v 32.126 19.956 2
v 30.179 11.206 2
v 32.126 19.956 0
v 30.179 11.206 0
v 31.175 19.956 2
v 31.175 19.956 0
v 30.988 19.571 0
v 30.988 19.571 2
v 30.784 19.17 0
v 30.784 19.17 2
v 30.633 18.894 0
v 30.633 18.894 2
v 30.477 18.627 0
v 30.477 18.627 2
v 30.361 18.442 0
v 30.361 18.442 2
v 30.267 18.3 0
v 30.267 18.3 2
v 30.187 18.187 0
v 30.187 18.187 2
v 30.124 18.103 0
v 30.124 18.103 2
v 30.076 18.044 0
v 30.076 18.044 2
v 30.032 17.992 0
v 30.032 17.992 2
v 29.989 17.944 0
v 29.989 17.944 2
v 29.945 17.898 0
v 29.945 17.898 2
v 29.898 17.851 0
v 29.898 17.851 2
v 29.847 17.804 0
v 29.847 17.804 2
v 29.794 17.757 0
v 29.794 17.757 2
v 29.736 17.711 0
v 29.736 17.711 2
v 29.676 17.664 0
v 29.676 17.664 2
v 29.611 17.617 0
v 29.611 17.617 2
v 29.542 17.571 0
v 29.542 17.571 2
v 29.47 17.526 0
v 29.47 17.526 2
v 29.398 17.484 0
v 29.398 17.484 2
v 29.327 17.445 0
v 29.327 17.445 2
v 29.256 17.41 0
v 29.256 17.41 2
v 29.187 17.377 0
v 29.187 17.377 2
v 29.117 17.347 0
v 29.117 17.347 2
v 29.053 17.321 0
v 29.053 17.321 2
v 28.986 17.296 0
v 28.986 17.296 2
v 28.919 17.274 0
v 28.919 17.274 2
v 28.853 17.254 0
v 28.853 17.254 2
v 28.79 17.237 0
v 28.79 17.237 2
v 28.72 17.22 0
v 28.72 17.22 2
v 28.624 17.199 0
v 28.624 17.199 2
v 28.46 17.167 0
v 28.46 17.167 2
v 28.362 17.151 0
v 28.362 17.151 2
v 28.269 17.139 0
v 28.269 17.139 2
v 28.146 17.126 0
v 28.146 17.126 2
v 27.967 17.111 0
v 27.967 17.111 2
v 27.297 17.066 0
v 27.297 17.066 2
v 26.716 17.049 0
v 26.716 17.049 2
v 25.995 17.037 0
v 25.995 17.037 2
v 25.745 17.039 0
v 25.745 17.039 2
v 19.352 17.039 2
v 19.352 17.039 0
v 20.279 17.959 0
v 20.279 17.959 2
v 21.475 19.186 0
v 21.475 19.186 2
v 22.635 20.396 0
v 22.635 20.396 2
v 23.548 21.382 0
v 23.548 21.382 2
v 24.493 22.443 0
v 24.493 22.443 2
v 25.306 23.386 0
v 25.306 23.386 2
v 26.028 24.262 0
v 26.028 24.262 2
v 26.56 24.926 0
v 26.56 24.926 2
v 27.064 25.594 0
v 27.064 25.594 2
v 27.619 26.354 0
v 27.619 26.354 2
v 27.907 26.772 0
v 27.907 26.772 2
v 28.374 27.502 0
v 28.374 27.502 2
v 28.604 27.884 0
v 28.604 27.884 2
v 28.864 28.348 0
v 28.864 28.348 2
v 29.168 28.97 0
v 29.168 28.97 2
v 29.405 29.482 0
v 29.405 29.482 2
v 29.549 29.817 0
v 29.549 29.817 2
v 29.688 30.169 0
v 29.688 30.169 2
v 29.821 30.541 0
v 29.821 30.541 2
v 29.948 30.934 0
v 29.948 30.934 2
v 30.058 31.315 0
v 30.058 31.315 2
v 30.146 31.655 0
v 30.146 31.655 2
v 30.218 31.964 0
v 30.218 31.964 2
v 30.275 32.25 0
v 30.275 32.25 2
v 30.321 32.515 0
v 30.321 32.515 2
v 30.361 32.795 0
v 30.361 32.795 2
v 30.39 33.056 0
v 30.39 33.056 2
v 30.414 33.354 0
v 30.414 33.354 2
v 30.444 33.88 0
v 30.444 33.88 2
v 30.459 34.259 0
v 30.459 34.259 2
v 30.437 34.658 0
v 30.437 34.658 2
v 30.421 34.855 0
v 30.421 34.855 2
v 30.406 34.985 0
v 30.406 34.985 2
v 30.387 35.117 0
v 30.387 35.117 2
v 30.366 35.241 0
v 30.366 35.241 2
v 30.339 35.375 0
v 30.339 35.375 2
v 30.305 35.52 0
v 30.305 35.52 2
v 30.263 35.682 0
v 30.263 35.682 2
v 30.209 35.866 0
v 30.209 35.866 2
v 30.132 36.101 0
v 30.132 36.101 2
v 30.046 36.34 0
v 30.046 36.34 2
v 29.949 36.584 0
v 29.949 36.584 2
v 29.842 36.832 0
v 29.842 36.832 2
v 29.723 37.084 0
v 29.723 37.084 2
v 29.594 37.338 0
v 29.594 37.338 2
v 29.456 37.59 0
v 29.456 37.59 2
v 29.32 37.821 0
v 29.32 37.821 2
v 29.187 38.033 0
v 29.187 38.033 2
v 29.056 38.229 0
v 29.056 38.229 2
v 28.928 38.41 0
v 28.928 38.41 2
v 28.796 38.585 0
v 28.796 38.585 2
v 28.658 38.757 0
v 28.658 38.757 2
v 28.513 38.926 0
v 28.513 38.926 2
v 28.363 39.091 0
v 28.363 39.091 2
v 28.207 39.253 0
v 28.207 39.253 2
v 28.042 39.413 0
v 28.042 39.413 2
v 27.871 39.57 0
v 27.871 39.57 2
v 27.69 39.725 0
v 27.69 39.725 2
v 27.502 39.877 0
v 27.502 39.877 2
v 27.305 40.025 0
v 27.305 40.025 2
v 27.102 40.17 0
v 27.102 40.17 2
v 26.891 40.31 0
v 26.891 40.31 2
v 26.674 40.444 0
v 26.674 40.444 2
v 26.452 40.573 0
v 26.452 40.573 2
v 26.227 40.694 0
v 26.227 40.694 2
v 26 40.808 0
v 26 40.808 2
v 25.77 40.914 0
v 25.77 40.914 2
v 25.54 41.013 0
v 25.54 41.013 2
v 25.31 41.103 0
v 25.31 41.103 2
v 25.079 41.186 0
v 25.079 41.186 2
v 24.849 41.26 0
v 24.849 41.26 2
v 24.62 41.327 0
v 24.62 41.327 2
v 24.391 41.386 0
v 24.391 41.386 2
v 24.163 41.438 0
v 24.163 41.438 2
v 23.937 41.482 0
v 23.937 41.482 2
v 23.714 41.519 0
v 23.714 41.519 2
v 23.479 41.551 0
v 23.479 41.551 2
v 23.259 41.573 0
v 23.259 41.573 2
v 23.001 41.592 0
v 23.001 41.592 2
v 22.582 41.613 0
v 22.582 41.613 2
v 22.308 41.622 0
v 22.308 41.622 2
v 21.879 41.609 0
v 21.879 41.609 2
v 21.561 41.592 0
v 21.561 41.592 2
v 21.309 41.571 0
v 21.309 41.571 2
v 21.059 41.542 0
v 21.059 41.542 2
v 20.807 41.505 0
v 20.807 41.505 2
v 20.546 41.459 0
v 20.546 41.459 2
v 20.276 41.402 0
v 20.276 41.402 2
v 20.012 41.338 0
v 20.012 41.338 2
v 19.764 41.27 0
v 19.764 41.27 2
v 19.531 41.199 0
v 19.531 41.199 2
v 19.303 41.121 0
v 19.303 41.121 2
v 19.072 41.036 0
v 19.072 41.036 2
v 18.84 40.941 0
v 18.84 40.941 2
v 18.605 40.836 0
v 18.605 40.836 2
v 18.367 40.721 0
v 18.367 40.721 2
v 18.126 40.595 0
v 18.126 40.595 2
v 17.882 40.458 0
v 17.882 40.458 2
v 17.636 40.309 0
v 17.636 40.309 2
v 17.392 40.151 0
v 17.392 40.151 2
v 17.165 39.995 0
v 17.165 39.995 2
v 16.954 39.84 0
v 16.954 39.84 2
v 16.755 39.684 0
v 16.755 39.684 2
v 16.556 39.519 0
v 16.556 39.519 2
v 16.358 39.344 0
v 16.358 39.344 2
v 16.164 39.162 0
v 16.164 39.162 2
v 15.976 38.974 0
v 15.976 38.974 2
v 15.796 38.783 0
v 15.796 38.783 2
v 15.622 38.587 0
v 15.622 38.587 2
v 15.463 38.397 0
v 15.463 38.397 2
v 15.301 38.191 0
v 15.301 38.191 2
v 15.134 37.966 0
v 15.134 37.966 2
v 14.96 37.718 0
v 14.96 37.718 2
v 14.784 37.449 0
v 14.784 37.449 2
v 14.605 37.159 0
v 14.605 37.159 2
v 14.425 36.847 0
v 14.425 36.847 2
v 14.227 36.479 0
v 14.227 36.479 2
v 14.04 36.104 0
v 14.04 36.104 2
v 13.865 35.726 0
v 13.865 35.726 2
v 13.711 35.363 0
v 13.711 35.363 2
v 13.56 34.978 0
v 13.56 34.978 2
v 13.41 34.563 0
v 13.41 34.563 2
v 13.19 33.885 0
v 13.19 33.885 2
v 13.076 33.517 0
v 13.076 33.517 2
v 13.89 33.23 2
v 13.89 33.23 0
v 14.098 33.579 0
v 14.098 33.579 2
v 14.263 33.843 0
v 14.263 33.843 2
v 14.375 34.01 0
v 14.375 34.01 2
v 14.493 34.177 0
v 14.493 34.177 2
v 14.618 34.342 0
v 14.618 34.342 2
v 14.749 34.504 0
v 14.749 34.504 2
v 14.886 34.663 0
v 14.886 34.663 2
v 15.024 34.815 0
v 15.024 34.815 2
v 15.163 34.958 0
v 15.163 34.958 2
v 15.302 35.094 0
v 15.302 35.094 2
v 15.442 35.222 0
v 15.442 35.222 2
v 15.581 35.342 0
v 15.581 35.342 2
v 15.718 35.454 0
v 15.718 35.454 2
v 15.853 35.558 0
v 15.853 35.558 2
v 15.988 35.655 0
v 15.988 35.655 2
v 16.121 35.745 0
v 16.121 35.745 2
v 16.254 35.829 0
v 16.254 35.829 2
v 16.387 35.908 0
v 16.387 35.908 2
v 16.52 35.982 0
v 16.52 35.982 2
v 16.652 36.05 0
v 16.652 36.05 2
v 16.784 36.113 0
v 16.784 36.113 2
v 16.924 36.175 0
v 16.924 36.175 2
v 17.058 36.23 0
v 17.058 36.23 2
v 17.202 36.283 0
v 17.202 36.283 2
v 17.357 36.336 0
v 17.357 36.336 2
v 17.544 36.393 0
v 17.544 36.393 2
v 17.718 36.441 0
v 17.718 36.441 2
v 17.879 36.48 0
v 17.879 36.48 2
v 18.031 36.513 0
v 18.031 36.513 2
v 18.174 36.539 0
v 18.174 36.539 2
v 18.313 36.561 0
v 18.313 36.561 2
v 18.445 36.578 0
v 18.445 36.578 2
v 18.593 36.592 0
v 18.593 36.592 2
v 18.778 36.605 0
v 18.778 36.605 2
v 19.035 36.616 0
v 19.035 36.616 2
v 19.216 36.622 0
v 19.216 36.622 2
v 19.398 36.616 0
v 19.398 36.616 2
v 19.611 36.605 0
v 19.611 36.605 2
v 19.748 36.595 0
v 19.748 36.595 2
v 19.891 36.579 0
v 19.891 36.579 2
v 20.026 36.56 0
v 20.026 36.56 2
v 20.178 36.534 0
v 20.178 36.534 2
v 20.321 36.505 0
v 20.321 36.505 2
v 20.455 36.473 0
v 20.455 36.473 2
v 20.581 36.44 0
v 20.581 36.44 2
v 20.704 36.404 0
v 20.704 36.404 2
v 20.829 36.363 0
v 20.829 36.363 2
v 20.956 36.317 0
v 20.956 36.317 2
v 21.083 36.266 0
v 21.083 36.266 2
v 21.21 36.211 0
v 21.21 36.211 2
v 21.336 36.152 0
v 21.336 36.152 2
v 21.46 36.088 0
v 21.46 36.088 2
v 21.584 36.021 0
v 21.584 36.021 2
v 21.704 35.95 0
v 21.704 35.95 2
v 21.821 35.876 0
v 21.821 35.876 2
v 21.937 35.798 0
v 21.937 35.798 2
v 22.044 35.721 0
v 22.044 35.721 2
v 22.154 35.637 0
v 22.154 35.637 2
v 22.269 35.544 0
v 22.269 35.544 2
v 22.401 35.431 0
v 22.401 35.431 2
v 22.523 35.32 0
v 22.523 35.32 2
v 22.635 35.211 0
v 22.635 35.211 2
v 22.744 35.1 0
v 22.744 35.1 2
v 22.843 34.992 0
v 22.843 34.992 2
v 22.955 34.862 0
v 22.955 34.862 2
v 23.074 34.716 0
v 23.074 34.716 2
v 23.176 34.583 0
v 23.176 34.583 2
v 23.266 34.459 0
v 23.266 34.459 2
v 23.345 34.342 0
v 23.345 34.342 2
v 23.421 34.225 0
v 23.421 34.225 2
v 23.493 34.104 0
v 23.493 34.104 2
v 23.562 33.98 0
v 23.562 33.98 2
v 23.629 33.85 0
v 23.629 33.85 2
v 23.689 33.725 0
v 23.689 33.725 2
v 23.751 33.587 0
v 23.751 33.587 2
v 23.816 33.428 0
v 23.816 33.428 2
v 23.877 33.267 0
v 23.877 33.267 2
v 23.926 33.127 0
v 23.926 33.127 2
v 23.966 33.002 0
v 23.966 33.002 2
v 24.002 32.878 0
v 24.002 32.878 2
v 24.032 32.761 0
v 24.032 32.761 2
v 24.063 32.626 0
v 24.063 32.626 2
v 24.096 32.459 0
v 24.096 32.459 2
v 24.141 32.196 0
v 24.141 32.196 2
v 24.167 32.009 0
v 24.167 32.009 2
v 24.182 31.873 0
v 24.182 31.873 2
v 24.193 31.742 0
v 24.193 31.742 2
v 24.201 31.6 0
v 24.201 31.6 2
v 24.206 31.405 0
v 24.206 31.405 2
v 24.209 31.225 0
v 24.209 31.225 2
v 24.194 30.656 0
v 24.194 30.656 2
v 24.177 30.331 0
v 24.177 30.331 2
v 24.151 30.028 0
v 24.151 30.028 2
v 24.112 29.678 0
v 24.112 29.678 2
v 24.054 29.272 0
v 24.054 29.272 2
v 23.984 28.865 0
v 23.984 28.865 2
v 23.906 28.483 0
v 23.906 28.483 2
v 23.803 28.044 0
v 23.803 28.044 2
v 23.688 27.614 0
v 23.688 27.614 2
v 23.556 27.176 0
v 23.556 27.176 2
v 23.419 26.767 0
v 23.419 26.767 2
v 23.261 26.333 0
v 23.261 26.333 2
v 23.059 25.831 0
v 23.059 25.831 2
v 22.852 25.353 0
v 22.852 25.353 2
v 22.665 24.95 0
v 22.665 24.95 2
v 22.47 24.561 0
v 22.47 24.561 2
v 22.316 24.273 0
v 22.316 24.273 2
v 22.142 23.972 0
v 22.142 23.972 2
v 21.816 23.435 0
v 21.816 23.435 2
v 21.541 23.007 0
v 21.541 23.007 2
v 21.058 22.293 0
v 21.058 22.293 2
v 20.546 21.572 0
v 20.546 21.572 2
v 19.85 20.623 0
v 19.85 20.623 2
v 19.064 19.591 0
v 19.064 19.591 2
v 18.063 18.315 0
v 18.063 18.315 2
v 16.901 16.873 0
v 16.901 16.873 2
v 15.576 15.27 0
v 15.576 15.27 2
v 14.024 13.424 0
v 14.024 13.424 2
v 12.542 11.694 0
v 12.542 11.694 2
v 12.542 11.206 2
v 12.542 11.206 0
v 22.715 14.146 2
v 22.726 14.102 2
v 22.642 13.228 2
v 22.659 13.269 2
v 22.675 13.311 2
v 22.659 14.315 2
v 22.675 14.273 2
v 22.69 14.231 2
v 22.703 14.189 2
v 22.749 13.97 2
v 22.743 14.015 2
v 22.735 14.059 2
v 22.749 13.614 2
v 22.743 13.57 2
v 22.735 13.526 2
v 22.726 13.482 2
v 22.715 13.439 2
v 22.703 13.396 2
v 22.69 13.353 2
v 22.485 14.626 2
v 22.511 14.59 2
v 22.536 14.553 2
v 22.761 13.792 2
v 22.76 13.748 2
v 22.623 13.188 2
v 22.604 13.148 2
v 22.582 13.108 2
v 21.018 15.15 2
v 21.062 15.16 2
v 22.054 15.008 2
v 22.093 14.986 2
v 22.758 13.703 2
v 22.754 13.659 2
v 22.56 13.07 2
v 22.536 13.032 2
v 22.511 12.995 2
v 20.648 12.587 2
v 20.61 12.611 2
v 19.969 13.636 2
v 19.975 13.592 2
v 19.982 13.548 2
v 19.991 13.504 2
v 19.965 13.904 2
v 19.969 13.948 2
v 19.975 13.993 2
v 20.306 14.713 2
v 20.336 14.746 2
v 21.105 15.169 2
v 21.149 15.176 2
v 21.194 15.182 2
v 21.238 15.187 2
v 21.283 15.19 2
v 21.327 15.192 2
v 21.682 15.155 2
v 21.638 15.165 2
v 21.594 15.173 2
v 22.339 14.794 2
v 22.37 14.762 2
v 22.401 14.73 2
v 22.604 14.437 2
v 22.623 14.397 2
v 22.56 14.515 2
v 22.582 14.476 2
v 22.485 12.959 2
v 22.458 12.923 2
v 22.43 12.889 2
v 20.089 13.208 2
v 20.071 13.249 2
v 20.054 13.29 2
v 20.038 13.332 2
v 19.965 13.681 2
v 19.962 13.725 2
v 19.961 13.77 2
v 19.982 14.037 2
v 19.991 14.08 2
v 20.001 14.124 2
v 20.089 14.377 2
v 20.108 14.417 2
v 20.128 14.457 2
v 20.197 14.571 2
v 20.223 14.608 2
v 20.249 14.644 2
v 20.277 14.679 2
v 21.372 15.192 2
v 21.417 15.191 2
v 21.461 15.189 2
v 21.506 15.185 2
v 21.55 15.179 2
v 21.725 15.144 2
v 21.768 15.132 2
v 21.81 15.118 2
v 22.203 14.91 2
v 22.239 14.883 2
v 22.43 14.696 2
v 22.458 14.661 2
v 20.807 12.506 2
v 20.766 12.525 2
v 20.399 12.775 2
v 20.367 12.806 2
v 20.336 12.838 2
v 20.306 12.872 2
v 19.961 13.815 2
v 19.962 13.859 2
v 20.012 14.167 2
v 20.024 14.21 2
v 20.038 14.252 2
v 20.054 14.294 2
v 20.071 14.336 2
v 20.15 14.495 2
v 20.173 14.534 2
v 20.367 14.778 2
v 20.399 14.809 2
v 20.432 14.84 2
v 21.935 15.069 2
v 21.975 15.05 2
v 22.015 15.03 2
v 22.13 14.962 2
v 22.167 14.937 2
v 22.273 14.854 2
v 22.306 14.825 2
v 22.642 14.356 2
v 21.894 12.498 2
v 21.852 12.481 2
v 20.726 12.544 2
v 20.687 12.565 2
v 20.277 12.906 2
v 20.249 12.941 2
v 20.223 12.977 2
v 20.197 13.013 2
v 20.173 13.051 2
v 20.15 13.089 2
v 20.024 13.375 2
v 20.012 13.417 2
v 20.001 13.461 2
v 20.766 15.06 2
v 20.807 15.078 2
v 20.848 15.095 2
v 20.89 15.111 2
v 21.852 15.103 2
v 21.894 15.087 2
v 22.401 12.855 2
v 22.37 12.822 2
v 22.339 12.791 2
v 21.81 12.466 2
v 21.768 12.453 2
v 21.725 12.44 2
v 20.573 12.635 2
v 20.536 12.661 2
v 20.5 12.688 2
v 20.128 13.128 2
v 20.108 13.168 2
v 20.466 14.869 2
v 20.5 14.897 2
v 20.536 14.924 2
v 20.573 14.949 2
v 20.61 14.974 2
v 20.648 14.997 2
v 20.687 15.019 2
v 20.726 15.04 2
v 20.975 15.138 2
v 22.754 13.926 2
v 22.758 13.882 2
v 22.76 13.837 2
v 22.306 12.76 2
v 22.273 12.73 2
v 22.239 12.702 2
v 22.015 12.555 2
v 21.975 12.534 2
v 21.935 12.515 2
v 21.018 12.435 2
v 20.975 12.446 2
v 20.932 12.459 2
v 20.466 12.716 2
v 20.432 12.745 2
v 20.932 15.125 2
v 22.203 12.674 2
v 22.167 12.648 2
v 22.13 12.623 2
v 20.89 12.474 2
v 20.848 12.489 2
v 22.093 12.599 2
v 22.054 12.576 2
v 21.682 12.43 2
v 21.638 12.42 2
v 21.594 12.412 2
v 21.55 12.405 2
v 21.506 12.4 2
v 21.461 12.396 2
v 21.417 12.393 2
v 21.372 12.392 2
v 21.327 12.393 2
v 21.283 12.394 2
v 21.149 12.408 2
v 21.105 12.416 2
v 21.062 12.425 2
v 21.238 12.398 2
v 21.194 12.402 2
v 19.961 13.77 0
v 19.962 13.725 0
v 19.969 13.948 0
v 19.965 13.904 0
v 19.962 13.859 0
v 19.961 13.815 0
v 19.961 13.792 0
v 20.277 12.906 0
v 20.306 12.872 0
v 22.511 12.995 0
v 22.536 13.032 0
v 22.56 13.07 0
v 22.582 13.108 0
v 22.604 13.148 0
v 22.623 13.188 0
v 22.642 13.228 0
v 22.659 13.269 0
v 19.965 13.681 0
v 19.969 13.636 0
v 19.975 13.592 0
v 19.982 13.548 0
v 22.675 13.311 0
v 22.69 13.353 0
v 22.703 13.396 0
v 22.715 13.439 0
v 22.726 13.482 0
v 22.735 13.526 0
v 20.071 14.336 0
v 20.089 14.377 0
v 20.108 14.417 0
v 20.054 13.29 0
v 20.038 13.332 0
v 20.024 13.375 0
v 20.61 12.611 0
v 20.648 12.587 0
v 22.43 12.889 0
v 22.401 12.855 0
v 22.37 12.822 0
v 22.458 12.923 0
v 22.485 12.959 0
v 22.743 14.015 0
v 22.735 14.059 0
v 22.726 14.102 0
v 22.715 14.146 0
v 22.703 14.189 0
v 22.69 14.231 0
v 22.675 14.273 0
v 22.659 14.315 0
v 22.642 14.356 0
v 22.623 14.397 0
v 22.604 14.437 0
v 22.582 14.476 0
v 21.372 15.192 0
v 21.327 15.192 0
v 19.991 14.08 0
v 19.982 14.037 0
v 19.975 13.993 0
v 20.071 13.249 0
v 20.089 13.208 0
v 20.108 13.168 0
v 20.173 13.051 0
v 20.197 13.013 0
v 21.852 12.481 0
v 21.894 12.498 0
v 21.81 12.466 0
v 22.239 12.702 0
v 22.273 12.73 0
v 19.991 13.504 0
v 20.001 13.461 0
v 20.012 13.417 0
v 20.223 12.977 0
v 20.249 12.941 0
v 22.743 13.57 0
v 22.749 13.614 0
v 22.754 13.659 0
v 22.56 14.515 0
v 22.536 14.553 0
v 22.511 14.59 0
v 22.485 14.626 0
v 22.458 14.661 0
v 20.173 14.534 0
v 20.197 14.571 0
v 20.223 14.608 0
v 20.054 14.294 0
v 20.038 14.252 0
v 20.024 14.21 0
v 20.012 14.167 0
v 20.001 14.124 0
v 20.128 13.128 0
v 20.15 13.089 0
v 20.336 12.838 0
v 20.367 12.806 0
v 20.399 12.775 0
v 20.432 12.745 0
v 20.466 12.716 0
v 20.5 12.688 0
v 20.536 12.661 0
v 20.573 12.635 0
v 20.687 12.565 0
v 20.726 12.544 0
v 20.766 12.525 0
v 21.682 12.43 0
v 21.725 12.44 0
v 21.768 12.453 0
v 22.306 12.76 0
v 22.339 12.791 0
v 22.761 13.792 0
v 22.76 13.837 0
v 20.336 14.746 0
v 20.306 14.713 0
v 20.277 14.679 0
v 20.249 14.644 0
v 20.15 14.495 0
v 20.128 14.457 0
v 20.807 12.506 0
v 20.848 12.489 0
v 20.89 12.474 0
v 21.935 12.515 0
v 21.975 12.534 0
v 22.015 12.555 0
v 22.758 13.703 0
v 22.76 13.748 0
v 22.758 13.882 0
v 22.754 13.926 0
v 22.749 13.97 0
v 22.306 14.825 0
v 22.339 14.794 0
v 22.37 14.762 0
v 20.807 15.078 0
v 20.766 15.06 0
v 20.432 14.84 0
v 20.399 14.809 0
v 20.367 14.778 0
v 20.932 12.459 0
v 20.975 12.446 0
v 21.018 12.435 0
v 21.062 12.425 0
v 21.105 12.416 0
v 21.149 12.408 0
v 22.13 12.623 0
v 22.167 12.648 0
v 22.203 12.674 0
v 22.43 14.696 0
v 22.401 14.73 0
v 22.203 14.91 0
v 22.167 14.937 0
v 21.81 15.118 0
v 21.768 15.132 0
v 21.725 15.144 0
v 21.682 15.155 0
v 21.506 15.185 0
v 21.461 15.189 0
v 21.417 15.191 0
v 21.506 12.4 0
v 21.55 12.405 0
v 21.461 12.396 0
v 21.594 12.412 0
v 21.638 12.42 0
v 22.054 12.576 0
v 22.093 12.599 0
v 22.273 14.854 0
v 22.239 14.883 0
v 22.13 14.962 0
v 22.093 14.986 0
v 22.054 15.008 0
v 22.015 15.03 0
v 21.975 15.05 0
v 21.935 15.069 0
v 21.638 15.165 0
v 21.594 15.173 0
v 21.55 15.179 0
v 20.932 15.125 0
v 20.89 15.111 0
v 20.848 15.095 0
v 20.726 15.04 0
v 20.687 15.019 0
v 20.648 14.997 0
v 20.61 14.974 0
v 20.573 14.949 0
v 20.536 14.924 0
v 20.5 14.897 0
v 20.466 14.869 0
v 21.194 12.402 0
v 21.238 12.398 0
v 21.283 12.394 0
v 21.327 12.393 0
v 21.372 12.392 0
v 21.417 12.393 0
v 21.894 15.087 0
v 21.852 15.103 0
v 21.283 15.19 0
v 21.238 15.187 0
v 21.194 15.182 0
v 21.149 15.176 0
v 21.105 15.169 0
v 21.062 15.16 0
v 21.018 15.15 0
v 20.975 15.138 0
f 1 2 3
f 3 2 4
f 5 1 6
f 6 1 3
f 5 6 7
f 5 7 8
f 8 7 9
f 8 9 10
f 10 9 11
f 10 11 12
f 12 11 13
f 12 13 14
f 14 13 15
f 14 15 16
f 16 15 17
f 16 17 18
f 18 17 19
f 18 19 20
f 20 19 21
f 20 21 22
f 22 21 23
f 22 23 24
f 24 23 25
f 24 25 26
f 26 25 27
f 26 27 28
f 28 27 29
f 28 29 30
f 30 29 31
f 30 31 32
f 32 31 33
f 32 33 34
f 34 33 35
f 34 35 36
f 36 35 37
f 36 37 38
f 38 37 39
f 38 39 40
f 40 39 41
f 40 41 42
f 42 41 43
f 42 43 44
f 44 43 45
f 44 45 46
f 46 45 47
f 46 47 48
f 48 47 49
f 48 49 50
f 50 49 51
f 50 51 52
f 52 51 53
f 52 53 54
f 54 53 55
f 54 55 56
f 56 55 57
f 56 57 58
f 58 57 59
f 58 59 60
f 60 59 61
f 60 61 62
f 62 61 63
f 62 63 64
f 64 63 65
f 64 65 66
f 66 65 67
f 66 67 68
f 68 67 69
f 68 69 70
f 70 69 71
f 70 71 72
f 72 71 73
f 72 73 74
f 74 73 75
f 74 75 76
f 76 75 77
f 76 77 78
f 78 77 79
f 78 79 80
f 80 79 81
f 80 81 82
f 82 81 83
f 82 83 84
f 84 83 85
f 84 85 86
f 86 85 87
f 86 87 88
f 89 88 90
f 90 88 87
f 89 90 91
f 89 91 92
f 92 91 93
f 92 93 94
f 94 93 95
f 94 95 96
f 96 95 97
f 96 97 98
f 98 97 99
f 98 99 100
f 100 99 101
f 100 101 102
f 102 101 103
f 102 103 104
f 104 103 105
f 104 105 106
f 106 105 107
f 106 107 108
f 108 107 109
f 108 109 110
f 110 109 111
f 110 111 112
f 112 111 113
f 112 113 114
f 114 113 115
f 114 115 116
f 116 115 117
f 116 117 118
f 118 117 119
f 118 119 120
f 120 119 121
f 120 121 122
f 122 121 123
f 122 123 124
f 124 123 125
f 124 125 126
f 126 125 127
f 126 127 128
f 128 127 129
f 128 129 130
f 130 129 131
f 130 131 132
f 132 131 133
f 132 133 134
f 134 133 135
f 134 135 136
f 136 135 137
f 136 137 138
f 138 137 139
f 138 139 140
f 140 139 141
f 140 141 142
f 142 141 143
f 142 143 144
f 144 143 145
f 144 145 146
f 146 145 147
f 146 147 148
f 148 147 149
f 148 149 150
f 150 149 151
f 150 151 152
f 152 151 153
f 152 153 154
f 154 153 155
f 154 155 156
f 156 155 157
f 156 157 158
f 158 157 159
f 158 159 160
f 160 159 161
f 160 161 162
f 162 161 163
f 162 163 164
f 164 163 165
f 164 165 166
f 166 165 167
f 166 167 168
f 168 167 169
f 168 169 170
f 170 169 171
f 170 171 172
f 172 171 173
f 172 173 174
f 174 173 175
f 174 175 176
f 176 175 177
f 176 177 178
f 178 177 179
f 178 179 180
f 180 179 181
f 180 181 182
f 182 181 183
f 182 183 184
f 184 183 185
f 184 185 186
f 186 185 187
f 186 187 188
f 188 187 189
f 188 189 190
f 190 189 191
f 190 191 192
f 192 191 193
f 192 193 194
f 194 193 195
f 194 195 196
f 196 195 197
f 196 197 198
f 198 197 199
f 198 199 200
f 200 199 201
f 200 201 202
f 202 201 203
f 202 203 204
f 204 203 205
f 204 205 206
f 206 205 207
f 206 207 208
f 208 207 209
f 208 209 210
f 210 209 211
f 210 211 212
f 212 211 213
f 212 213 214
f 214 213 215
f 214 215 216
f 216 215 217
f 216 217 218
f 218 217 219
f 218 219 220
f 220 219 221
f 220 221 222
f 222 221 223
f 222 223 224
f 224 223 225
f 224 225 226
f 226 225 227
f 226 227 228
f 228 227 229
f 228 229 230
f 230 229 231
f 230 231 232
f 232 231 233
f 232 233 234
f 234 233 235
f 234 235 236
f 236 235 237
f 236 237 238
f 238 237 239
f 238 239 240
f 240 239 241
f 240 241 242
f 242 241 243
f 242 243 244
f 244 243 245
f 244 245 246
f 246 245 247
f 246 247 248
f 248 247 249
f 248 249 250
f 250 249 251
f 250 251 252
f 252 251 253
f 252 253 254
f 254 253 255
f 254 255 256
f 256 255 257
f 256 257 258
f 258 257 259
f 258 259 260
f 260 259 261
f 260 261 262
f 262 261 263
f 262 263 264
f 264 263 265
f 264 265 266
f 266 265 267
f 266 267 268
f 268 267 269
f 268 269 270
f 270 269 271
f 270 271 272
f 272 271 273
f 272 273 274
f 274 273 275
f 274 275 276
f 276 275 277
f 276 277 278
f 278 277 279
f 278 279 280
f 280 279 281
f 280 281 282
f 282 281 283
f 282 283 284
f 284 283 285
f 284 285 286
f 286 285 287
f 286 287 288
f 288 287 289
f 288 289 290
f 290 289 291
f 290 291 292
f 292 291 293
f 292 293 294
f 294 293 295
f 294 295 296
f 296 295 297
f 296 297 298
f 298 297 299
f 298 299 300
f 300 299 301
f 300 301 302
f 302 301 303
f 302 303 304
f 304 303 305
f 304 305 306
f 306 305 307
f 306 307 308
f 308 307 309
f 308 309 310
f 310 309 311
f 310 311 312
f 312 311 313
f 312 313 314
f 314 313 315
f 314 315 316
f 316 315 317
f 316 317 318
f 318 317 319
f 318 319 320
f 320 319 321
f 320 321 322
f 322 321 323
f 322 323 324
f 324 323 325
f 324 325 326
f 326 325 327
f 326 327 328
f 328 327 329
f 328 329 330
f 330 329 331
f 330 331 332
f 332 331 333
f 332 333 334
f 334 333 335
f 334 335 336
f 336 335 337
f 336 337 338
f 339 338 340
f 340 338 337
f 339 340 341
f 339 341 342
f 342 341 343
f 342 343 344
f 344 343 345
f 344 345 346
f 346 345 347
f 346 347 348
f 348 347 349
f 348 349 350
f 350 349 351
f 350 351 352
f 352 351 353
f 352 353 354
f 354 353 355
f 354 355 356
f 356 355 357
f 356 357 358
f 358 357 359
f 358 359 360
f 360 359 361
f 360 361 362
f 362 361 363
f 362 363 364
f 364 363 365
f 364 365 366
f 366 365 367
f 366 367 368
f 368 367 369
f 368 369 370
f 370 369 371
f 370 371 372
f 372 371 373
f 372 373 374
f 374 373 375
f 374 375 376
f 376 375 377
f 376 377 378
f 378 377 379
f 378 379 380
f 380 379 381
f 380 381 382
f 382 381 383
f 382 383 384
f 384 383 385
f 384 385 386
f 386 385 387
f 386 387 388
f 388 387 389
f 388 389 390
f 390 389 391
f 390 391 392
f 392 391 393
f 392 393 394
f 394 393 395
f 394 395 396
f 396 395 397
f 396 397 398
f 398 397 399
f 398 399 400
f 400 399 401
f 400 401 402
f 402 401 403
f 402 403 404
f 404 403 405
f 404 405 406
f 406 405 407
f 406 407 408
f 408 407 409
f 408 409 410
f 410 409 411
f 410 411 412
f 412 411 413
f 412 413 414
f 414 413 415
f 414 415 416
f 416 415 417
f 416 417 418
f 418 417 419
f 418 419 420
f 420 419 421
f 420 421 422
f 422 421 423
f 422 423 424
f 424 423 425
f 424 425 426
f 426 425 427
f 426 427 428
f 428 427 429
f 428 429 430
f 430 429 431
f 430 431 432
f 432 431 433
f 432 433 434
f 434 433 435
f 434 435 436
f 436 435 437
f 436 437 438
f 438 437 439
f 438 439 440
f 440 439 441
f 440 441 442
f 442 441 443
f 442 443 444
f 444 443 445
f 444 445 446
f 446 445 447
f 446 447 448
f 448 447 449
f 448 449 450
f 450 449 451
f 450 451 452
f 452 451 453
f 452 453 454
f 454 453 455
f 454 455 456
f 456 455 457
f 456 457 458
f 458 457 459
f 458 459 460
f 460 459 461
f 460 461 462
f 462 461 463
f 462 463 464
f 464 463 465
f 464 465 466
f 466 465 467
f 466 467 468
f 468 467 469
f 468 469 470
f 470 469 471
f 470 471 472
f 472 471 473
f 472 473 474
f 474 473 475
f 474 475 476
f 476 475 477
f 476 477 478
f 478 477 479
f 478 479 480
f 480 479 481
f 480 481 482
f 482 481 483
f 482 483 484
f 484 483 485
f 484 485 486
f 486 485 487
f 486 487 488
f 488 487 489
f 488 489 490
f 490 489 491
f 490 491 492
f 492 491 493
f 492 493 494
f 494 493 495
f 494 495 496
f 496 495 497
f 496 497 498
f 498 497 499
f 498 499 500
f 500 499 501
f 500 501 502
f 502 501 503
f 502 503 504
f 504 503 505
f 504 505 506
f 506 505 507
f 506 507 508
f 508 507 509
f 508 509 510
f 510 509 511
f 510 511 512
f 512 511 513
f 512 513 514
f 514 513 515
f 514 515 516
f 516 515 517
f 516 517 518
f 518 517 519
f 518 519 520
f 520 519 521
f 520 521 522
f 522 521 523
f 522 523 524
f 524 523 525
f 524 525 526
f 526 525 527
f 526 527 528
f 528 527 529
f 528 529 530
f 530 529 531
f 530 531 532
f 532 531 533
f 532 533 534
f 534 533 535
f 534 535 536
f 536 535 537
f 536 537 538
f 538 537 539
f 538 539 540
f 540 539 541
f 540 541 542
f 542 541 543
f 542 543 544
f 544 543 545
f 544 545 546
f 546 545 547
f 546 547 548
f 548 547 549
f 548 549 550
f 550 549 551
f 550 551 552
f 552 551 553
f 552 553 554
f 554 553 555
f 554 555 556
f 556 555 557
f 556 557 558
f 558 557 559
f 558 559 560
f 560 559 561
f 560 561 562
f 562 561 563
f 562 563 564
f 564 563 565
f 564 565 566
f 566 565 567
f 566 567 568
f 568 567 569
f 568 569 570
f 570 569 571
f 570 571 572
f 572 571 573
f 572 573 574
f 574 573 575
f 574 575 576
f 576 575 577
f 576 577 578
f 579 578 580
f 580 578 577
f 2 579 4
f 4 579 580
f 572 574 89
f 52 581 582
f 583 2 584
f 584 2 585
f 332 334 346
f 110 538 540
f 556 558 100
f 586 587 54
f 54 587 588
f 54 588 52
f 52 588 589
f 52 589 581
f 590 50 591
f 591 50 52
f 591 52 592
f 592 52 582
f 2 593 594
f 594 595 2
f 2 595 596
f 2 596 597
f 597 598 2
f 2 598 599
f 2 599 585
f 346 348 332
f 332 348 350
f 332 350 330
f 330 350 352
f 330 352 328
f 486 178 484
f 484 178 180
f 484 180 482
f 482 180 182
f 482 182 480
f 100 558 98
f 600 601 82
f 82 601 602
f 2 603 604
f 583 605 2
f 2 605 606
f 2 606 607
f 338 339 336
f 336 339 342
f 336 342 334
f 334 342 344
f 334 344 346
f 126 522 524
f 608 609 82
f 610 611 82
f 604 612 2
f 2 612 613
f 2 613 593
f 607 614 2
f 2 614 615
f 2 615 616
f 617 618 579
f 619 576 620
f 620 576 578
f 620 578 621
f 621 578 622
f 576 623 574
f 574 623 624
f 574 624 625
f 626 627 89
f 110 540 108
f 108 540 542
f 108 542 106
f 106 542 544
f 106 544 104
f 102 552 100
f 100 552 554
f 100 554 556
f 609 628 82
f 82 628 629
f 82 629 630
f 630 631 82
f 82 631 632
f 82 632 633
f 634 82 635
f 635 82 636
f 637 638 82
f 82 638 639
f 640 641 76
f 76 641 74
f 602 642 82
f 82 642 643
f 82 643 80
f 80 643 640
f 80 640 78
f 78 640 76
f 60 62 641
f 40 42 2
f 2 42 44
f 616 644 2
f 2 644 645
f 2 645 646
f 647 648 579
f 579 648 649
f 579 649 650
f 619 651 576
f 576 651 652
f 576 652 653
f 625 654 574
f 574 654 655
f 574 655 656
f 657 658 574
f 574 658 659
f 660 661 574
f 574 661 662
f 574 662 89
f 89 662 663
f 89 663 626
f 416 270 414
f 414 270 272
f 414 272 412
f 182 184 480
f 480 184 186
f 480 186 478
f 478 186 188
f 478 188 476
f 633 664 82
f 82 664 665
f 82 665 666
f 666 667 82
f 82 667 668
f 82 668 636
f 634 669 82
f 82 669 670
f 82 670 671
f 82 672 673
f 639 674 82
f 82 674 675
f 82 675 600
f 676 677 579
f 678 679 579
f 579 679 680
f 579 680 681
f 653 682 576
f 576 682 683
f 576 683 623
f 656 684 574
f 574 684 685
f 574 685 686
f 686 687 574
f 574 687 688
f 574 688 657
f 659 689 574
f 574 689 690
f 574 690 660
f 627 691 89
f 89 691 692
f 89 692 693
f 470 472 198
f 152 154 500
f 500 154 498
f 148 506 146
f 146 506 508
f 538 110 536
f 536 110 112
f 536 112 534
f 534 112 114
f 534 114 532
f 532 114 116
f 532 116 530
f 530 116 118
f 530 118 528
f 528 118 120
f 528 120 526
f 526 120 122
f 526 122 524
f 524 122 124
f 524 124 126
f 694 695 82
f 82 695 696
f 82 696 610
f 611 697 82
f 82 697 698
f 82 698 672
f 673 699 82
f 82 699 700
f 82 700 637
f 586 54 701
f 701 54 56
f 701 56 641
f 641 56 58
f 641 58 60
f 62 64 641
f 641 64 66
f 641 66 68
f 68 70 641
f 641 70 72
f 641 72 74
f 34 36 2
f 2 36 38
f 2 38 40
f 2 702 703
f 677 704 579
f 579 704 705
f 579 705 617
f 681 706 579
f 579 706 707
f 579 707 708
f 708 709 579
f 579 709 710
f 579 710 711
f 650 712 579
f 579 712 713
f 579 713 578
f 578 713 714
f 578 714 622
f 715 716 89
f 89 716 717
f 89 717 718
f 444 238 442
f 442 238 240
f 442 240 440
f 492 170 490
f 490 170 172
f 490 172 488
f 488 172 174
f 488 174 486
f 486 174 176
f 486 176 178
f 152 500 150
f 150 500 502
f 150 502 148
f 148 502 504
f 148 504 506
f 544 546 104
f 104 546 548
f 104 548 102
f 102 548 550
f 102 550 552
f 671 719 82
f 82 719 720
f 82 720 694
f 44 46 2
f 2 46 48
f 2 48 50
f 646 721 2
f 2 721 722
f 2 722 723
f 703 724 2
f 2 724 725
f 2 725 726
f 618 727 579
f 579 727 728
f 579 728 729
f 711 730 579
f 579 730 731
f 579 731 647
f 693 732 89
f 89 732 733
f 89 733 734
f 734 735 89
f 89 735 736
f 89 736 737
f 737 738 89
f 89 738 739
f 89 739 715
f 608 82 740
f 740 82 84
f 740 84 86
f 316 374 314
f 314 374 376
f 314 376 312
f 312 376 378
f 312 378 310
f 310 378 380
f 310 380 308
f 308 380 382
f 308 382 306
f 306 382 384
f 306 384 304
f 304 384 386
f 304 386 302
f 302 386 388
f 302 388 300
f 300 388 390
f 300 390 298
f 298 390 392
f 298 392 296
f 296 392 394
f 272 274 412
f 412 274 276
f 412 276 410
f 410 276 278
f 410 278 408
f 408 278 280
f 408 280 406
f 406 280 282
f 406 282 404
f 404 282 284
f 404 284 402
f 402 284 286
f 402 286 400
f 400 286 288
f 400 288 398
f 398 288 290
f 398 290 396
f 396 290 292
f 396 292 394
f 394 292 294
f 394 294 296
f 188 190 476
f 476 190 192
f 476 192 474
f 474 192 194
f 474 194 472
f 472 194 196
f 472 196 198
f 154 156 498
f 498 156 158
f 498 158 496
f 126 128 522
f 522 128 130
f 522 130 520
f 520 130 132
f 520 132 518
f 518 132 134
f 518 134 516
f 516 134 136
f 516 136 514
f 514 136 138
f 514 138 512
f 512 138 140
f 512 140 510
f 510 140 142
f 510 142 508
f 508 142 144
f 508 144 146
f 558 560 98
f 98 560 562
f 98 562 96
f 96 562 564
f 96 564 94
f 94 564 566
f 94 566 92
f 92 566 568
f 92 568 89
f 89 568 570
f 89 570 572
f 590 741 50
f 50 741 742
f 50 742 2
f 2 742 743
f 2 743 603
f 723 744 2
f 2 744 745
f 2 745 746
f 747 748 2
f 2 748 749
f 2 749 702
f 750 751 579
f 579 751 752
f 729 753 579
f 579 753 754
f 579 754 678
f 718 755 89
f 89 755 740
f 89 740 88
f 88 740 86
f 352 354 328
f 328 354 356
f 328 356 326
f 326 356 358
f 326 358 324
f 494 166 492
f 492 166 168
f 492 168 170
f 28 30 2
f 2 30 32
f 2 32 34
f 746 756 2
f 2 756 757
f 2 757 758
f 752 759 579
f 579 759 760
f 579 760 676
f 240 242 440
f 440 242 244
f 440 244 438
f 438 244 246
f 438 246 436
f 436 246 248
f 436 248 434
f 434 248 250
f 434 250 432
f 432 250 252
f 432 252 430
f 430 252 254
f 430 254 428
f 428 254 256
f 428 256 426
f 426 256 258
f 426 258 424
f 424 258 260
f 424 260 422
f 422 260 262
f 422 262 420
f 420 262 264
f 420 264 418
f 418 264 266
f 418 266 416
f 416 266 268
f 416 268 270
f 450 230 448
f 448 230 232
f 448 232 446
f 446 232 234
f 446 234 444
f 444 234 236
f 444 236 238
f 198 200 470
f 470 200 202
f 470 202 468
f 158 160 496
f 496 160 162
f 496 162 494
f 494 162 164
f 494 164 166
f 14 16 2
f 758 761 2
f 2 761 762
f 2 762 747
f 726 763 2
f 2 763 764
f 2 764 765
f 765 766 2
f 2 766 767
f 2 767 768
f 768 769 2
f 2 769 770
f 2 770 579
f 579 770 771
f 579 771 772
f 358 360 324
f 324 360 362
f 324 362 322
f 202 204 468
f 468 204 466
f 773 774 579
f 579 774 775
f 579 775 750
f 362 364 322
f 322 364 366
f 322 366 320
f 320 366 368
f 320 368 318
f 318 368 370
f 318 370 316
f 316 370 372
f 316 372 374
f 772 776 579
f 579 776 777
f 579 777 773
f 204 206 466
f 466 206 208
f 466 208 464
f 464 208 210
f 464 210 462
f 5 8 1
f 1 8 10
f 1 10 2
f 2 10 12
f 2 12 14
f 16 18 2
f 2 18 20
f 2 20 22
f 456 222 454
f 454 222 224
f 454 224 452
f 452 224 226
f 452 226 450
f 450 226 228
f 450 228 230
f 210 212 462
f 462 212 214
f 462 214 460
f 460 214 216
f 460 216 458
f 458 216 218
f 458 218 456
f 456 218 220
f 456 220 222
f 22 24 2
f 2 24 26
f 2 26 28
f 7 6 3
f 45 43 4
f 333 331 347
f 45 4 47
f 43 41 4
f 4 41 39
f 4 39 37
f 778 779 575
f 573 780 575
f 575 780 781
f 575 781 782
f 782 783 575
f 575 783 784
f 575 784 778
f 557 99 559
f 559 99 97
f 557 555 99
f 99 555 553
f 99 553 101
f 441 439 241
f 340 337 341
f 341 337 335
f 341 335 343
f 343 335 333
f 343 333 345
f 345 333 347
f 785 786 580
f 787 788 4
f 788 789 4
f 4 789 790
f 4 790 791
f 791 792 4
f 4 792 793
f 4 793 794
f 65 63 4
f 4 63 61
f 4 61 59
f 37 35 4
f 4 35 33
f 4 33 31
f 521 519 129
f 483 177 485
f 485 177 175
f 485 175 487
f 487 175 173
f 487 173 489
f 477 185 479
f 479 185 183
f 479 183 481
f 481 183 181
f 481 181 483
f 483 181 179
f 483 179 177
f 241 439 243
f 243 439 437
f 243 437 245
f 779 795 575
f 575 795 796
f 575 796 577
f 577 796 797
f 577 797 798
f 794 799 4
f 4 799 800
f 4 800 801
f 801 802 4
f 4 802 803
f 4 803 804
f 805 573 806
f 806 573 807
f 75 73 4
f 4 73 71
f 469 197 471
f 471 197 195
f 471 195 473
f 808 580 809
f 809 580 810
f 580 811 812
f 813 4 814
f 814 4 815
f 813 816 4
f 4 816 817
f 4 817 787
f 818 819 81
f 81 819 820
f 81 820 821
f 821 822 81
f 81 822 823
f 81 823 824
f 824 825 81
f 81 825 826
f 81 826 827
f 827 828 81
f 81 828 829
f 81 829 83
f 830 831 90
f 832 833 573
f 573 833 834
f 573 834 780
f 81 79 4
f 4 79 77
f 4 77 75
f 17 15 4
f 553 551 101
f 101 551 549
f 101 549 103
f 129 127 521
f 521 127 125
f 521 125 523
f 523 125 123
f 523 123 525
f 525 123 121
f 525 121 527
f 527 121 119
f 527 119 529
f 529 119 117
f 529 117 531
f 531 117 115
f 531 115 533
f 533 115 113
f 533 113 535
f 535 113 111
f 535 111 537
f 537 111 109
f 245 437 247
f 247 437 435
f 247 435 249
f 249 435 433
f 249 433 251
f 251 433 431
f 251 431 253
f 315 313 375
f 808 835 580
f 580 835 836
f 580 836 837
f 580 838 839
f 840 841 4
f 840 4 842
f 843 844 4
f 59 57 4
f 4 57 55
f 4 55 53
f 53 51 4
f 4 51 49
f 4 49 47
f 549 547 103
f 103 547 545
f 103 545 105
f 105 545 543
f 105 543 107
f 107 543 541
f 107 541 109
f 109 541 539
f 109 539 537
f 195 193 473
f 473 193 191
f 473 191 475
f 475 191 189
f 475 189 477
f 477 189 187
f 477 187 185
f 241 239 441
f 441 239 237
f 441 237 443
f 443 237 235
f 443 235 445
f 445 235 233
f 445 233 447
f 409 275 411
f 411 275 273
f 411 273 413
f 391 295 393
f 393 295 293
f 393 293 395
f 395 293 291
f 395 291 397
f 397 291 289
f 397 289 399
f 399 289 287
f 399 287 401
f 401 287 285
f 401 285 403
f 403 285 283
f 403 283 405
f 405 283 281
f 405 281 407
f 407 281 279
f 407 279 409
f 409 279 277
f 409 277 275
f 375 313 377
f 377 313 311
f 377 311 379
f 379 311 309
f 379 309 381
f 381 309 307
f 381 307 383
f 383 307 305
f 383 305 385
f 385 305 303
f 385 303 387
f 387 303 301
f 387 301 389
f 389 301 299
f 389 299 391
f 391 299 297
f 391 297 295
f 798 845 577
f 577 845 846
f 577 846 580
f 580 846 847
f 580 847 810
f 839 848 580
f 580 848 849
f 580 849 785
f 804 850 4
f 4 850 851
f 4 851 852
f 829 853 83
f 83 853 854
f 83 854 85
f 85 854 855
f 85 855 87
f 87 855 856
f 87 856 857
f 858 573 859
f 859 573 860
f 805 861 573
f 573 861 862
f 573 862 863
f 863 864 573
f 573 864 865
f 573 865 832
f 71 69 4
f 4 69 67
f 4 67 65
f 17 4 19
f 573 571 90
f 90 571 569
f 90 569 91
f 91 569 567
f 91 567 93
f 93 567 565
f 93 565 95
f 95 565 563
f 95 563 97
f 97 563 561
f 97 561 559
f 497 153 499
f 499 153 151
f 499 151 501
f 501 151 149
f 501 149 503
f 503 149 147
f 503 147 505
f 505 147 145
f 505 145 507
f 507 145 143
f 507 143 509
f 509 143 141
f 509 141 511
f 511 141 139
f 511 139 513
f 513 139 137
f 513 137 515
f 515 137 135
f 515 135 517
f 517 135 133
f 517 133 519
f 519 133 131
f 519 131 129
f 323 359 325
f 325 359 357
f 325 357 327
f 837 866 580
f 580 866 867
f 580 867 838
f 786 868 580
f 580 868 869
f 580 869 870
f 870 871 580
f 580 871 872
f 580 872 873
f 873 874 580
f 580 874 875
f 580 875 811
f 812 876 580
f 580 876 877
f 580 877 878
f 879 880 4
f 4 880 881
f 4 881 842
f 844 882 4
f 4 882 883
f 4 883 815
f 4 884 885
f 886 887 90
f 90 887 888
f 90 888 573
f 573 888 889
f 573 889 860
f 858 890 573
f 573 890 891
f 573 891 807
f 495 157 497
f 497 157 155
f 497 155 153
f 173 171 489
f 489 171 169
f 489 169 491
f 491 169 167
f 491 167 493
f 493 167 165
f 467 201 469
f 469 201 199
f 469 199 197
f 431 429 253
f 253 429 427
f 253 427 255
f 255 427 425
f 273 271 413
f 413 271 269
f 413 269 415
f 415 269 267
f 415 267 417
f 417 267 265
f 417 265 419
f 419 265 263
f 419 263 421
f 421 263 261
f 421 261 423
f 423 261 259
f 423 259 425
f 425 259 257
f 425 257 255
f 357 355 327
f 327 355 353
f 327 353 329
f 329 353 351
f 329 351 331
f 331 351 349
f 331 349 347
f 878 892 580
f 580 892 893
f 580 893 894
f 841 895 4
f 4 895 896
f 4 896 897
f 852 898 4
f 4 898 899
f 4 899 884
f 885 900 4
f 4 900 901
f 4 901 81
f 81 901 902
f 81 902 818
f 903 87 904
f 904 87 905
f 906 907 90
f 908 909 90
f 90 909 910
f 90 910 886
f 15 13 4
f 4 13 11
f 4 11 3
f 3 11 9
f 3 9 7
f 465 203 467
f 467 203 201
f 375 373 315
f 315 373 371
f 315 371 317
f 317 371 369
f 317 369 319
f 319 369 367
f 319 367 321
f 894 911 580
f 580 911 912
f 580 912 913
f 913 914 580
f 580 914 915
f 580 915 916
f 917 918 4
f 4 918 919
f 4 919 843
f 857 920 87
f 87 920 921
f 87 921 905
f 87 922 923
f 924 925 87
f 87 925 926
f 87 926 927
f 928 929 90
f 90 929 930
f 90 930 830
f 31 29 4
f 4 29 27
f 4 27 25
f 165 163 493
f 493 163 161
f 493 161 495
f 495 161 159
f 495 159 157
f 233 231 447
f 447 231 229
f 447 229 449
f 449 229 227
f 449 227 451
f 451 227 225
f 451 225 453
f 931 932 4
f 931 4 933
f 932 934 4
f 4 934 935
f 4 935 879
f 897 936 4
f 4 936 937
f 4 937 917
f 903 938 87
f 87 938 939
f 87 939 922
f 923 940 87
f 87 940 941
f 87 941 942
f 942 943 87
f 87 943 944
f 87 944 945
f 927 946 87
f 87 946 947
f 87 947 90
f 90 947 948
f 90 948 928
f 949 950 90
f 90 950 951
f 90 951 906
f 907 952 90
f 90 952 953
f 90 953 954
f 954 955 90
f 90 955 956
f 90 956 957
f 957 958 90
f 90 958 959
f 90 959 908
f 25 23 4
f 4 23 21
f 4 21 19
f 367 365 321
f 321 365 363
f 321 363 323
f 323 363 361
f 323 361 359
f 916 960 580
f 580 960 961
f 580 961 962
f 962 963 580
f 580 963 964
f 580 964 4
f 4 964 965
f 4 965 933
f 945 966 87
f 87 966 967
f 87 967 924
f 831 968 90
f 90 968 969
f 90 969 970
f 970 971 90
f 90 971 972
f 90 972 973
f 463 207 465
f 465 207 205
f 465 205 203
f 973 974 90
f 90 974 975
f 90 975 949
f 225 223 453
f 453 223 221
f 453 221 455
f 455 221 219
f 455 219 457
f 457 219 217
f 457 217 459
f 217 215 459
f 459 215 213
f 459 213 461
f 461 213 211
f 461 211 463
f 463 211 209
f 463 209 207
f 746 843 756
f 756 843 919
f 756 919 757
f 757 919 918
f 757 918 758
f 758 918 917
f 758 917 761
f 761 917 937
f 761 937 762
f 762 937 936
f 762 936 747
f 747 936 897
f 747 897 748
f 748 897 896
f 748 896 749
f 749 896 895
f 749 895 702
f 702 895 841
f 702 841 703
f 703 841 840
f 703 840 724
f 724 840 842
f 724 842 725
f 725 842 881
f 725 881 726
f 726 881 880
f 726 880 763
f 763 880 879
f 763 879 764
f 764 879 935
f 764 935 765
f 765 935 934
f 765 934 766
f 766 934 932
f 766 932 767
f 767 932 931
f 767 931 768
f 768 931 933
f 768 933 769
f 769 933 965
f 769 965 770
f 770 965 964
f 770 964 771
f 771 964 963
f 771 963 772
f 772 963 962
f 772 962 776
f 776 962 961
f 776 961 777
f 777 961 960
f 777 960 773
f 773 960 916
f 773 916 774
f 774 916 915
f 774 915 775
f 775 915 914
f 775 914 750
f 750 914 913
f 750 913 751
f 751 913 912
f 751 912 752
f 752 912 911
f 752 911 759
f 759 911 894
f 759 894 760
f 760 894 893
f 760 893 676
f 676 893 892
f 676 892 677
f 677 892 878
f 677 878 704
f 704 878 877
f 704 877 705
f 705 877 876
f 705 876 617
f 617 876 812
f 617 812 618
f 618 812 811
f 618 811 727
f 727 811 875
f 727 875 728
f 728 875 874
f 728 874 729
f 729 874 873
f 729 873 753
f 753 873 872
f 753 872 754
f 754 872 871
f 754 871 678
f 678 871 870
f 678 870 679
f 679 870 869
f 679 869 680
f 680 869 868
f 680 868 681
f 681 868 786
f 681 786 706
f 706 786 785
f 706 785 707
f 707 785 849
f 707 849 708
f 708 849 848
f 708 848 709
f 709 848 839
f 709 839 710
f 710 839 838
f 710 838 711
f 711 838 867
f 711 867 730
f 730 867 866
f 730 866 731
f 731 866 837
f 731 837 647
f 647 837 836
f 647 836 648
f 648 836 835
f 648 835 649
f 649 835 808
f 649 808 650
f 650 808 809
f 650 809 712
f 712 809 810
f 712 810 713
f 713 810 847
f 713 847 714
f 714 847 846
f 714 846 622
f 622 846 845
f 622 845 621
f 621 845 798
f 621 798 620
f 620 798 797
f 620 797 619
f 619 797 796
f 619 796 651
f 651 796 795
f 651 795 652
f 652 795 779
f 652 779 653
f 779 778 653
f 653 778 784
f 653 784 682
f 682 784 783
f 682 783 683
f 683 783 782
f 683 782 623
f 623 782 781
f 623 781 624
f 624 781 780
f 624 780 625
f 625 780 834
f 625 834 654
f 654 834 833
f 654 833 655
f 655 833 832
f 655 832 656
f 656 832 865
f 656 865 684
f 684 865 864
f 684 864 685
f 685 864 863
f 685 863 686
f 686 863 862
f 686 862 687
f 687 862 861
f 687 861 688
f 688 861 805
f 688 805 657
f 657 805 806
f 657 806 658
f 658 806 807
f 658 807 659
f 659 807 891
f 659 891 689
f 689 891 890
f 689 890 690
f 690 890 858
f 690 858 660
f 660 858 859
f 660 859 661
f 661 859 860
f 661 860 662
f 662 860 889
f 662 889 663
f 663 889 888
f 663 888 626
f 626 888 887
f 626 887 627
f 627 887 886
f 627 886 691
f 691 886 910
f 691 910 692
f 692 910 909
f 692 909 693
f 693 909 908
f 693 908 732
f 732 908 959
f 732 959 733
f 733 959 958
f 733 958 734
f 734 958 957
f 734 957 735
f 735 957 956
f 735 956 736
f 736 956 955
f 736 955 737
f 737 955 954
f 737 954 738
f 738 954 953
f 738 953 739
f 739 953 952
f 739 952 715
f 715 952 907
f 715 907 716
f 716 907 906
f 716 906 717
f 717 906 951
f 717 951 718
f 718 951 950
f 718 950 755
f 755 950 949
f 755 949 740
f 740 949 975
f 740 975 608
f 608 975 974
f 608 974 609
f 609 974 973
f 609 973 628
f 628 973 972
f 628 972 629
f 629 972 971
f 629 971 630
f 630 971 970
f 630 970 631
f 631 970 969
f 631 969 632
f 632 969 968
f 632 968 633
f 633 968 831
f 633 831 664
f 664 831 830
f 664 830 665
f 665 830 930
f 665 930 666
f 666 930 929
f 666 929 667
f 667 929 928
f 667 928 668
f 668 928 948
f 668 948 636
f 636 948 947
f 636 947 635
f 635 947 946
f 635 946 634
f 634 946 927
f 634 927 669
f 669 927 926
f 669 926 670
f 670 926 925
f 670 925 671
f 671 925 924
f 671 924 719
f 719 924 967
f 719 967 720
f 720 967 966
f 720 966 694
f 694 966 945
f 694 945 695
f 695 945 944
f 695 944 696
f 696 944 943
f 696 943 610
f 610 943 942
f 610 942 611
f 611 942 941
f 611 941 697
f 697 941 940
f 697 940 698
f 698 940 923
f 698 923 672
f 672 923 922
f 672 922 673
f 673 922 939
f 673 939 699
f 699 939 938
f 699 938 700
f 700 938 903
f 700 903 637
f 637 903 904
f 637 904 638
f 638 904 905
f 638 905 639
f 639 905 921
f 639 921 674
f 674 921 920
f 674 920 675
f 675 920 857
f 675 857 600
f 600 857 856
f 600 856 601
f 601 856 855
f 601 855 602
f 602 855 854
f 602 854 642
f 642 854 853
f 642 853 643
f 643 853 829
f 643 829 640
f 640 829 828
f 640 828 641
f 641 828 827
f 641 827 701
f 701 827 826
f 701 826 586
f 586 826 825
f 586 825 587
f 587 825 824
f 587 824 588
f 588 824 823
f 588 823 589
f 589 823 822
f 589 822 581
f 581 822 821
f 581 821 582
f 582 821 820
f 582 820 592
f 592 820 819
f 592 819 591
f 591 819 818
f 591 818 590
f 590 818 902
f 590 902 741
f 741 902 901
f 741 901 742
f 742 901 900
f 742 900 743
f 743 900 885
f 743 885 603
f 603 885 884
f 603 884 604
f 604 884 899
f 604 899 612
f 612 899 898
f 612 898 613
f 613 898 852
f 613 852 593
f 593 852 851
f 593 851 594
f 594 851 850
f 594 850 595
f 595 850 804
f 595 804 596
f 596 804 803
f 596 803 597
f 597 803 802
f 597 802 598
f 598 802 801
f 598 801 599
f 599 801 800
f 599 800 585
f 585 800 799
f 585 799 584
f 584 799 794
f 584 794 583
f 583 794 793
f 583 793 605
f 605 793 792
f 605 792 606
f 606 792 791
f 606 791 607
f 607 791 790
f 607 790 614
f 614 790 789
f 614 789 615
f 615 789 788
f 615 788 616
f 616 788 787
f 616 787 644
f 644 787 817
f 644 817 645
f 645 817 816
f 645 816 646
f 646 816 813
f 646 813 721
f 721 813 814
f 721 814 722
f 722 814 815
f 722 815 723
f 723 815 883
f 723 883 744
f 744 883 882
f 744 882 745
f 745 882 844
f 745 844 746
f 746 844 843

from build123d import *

# Parameters (mm, degrees)
BOSS_EXTRU_1_DEPTH     = 2
D_GAGEMENT_M1_61_D     = 2.8
D_GAGEMENT_M1_61_DEPTH = 50


with BuildPart() as part:
    # Esquisse1 → Boss.-Extru.1 (new body)
    with BuildSketch(Plane.XY):
        with BuildLine():
            Line((30.179082722, 11.205600965), (12.542363972, 11.205600965))
            Line((12.542363972, 11.205600965), (12.542363972, 11.693882215))
            add(Edge.make_bspline(
                [(12.542363972, 11.693882215), (12.881136709, 12.088648819), (13.542742266, 12.85960749), (14.508452904, 13.992781588), (15.418047611, 15.079454653), (16.277439508, 16.114606131), (17.087274316, 17.097820692), (17.840140522, 18.035083149), (18.546233089, 18.920390025), (19.194803638, 19.760040209), (19.797304838, 20.547404882), (20.339194184, 21.2889747), (20.841948632, 21.973542972), (21.277716543, 22.6165006), (21.676531137, 23.203798306), (22.009071616, 23.748203678), (22.301606172, 24.237636856), (22.610004896, 24.824218938), (22.935697027, 25.52406999), (23.275867169, 26.35140879), (23.564495095, 27.174588864), (23.798493759, 27.994304476), (23.982029168, 28.80936221), (24.112052658, 29.618129528), (24.193983215, 30.422653355), (24.204021871, 30.958014733), (24.209030639, 31.225132215)],
                knots=[0, 0, 0, 0, 0.0015606, 0.003047771, 0.004466519, 0.005811909, 0.007083975, 0.008287821, 0.009418461, 0.010481096, 0.011470701, 0.012392609, 0.013236481, 0.014018408, 0.014722618, 0.015365799, 0.015931906, 0.016432828, 0.017353171, 0.018246618, 0.019115508, 0.019968646, 0.020802615, 0.02162034, 0.022424923, 0.023226128, 0.023226128, 0.023226128, 0.023226128], degree=3))
            add(Edge.make_bspline(
                [(24.209030639, 31.225132215), (24.206655253, 31.414235122), (24.201968183, 31.787369618), (24.12375386, 32.332982208), (24.019318572, 32.858426919), (23.85158693, 33.35310546), (23.651423788, 33.825766135), (23.401285376, 34.273895228), (23.100563635, 34.693869832), (22.765183813, 35.090463219), (22.394783522, 35.445944183), (22.002313346, 35.762683678), (21.587212745, 36.028401492), (21.150868718, 36.246817438), (20.697063898, 36.416097723), (20.220705812, 36.533298704), (19.725615517, 36.606433615), (19.387236699, 36.616937759), (19.215541055, 36.622267631)],
                knots=[0, 0, 0, 0, 0.000566743, 0.001118287, 0.00165075, 0.002171624, 0.002681976, 0.00318912, 0.003707547, 0.004229397, 0.004745078, 0.005245322, 0.005740156, 0.006220562, 0.006706711, 0.007189888, 0.007689835, 0.008204817, 0.008204817, 0.008204817, 0.008204817], degree=3))
            add(Edge.make_bspline(
                [(19.215541055, 36.622267631), (18.936844993, 36.61344576), (18.389653493, 36.59612491), (17.597649359, 36.424792239), (16.849444788, 36.166203908), (16.151829751, 35.788732099), (15.506339966, 35.302359066), (14.907144288, 34.713738884), (14.356945555, 34.020964188), (14.04878719, 33.499173505), (13.890020222, 33.230340548)],
                knots=[0, 0, 0, 0, 0.000834959, 0.001639358, 0.002419767, 0.003203319, 0.004008008, 0.0048367, 0.00571722, 0.006653, 0.006653, 0.006653, 0.006653], degree=3))
            Line((13.890020222, 33.230340548), (13.076218139, 33.516798881))
            add(Edge.make_bspline(
                [(13.076218139, 33.516798881), (13.179054061, 33.852146444), (13.379157113, 34.504681753), (13.730639084, 35.441767759), (14.128497083, 36.308808373), (14.563282581, 37.10954717), (15.033600596, 37.844258143), (15.5420578, 38.513613494), (16.095126829, 39.111498004), (16.684071503, 39.642688482), (17.305618092, 40.104990045), (17.951897427, 40.51064322), (18.622014238, 40.85644043), (19.314800196, 41.13819172), (20.03030182, 41.35294052), (20.767979453, 41.510881359), (21.530961248, 41.602061284), (22.047337974, 41.615489489), (22.307988972, 41.622267631)],
                knots=[0, 0, 0, 0, 0.001052132, 0.00204729, 0.002999904, 0.003911781, 0.00477862, 0.005614594, 0.006430061, 0.00721836, 0.007990496, 0.00875099, 0.009505131, 0.010249855, 0.0109913, 0.011743387, 0.01251054, 0.013292467, 0.013292467, 0.013292467, 0.013292467], degree=3))
            add(Edge.make_bspline(
                [(22.307988972, 41.622267631), (22.679896981, 41.609915738), (23.413788868, 41.585541555), (24.487860289, 41.38745513), (25.508615399, 41.050279213), (26.468407849, 40.589262885), (27.355163704, 40.016933082), (28.150058294, 39.34282648), (28.841028925, 38.567355524), (29.408352915, 37.708211361), (29.86607553, 36.82218061), (30.202107309, 35.945268221), (30.419693518, 35.09420366), (30.446199504, 34.531420793), (30.459030639, 34.258986381)],
                knots=[0, 0, 0, 0, 0.001115183, 0.002200609, 0.003262944, 0.004331625, 0.005386232, 0.006420753, 0.00744909, 0.00849096, 0.009501334, 0.010434779, 0.011304864, 0.012121266, 0.012121266, 0.012121266, 0.012121266], degree=3))
            add(Edge.make_bspline(
                [(30.459030639, 34.258986381), (30.440330645, 33.771334999), (30.402419871, 32.782712091), (30.083359411, 31.300391879), (29.583549933, 29.80452581), (29.108010723, 28.841647649), (28.863978555, 28.347528048)],
                knots=[0, 0, 0, 0, 0.001461599, 0.002963122, 0.004529862, 0.006181366, 0.006181366, 0.006181366, 0.006181366], degree=3))
            add(Edge.make_bspline(
                [(28.863978555, 28.347528048), (28.76786982, 28.173010661), (28.56975854, 27.813273711), (28.23120618, 27.272143019), (27.865011588, 26.69861719), (27.444510098, 26.107661003), (26.987928456, 25.491384116), (26.501286537, 24.840310245), (25.957900083, 24.177108889), (25.388470702, 23.477928873), (24.771397811, 22.759712277), (24.117625487, 22.015788636), (23.425278319, 21.243370208), (22.689052157, 20.449438203), (21.91022666, 19.633010142), (21.091622049, 18.791368662), (20.243257466, 17.916656162), (19.65289757, 17.335092583), (19.352259805, 17.038934298)],
                knots=[0, 0, 0, 0, 0.000597577, 0.0012318, 0.001914401, 0.002638697, 0.003406954, 0.004215557, 0.005076755, 0.005978701, 0.006920711, 0.007917166, 0.008949842, 0.010032472, 0.011165284, 0.012334734, 0.013554755, 0.014820742, 0.014820742, 0.014820742, 0.014820742], degree=3))
            Line((19.352259805, 17.038934298), (25.745488972, 17.038934298))
            add(Edge.make_bspline(
                [(25.745488972, 17.038934298), (25.934313645, 17.037464211), (26.292485048, 17.034675682), (26.804467082, 17.053384982), (27.26500093, 17.059893125), (27.672690984, 17.089906602), (28.028799564, 17.114582451), (28.333895654, 17.142780825), (28.587044708, 17.1909813), (28.967040392, 17.271944811), (29.453325738, 17.483845597), (29.924483141, 17.844652989), (30.250271084, 18.262660952), (30.531456746, 18.706877056), (30.850559761, 19.283215692), (31.060390484, 19.717842386), (31.175176472, 19.955600965)],
                knots=[0, 0, 0, 0, 0.000566406, 0.001074386, 0.001536809, 0.001947791, 0.002300316, 0.002608033, 0.002865996, 0.003072901, 0.003773035, 0.00443598, 0.00482947, 0.005356773, 0.006012518, 0.006804464, 0.006804464, 0.006804464, 0.006804464], degree=3))
            Line((31.175176472, 19.955600965), (32.125697305, 19.955600965))
            Line((32.125697305, 19.955600965), (30.179082722, 11.205600965))
        make_face()
    extrude(amount=BOSS_EXTRU_1_DEPTH)

    # Dégagement M1.61
    with Locations(Plane.XY.offset(2)):
        with Locations((21.360723347, 13.792257827)):
            Hole(D_GAGEMENT_M1_61_D / 2, depth=D_GAGEMENT_M1_61_DEPTH)


solid = part.part
